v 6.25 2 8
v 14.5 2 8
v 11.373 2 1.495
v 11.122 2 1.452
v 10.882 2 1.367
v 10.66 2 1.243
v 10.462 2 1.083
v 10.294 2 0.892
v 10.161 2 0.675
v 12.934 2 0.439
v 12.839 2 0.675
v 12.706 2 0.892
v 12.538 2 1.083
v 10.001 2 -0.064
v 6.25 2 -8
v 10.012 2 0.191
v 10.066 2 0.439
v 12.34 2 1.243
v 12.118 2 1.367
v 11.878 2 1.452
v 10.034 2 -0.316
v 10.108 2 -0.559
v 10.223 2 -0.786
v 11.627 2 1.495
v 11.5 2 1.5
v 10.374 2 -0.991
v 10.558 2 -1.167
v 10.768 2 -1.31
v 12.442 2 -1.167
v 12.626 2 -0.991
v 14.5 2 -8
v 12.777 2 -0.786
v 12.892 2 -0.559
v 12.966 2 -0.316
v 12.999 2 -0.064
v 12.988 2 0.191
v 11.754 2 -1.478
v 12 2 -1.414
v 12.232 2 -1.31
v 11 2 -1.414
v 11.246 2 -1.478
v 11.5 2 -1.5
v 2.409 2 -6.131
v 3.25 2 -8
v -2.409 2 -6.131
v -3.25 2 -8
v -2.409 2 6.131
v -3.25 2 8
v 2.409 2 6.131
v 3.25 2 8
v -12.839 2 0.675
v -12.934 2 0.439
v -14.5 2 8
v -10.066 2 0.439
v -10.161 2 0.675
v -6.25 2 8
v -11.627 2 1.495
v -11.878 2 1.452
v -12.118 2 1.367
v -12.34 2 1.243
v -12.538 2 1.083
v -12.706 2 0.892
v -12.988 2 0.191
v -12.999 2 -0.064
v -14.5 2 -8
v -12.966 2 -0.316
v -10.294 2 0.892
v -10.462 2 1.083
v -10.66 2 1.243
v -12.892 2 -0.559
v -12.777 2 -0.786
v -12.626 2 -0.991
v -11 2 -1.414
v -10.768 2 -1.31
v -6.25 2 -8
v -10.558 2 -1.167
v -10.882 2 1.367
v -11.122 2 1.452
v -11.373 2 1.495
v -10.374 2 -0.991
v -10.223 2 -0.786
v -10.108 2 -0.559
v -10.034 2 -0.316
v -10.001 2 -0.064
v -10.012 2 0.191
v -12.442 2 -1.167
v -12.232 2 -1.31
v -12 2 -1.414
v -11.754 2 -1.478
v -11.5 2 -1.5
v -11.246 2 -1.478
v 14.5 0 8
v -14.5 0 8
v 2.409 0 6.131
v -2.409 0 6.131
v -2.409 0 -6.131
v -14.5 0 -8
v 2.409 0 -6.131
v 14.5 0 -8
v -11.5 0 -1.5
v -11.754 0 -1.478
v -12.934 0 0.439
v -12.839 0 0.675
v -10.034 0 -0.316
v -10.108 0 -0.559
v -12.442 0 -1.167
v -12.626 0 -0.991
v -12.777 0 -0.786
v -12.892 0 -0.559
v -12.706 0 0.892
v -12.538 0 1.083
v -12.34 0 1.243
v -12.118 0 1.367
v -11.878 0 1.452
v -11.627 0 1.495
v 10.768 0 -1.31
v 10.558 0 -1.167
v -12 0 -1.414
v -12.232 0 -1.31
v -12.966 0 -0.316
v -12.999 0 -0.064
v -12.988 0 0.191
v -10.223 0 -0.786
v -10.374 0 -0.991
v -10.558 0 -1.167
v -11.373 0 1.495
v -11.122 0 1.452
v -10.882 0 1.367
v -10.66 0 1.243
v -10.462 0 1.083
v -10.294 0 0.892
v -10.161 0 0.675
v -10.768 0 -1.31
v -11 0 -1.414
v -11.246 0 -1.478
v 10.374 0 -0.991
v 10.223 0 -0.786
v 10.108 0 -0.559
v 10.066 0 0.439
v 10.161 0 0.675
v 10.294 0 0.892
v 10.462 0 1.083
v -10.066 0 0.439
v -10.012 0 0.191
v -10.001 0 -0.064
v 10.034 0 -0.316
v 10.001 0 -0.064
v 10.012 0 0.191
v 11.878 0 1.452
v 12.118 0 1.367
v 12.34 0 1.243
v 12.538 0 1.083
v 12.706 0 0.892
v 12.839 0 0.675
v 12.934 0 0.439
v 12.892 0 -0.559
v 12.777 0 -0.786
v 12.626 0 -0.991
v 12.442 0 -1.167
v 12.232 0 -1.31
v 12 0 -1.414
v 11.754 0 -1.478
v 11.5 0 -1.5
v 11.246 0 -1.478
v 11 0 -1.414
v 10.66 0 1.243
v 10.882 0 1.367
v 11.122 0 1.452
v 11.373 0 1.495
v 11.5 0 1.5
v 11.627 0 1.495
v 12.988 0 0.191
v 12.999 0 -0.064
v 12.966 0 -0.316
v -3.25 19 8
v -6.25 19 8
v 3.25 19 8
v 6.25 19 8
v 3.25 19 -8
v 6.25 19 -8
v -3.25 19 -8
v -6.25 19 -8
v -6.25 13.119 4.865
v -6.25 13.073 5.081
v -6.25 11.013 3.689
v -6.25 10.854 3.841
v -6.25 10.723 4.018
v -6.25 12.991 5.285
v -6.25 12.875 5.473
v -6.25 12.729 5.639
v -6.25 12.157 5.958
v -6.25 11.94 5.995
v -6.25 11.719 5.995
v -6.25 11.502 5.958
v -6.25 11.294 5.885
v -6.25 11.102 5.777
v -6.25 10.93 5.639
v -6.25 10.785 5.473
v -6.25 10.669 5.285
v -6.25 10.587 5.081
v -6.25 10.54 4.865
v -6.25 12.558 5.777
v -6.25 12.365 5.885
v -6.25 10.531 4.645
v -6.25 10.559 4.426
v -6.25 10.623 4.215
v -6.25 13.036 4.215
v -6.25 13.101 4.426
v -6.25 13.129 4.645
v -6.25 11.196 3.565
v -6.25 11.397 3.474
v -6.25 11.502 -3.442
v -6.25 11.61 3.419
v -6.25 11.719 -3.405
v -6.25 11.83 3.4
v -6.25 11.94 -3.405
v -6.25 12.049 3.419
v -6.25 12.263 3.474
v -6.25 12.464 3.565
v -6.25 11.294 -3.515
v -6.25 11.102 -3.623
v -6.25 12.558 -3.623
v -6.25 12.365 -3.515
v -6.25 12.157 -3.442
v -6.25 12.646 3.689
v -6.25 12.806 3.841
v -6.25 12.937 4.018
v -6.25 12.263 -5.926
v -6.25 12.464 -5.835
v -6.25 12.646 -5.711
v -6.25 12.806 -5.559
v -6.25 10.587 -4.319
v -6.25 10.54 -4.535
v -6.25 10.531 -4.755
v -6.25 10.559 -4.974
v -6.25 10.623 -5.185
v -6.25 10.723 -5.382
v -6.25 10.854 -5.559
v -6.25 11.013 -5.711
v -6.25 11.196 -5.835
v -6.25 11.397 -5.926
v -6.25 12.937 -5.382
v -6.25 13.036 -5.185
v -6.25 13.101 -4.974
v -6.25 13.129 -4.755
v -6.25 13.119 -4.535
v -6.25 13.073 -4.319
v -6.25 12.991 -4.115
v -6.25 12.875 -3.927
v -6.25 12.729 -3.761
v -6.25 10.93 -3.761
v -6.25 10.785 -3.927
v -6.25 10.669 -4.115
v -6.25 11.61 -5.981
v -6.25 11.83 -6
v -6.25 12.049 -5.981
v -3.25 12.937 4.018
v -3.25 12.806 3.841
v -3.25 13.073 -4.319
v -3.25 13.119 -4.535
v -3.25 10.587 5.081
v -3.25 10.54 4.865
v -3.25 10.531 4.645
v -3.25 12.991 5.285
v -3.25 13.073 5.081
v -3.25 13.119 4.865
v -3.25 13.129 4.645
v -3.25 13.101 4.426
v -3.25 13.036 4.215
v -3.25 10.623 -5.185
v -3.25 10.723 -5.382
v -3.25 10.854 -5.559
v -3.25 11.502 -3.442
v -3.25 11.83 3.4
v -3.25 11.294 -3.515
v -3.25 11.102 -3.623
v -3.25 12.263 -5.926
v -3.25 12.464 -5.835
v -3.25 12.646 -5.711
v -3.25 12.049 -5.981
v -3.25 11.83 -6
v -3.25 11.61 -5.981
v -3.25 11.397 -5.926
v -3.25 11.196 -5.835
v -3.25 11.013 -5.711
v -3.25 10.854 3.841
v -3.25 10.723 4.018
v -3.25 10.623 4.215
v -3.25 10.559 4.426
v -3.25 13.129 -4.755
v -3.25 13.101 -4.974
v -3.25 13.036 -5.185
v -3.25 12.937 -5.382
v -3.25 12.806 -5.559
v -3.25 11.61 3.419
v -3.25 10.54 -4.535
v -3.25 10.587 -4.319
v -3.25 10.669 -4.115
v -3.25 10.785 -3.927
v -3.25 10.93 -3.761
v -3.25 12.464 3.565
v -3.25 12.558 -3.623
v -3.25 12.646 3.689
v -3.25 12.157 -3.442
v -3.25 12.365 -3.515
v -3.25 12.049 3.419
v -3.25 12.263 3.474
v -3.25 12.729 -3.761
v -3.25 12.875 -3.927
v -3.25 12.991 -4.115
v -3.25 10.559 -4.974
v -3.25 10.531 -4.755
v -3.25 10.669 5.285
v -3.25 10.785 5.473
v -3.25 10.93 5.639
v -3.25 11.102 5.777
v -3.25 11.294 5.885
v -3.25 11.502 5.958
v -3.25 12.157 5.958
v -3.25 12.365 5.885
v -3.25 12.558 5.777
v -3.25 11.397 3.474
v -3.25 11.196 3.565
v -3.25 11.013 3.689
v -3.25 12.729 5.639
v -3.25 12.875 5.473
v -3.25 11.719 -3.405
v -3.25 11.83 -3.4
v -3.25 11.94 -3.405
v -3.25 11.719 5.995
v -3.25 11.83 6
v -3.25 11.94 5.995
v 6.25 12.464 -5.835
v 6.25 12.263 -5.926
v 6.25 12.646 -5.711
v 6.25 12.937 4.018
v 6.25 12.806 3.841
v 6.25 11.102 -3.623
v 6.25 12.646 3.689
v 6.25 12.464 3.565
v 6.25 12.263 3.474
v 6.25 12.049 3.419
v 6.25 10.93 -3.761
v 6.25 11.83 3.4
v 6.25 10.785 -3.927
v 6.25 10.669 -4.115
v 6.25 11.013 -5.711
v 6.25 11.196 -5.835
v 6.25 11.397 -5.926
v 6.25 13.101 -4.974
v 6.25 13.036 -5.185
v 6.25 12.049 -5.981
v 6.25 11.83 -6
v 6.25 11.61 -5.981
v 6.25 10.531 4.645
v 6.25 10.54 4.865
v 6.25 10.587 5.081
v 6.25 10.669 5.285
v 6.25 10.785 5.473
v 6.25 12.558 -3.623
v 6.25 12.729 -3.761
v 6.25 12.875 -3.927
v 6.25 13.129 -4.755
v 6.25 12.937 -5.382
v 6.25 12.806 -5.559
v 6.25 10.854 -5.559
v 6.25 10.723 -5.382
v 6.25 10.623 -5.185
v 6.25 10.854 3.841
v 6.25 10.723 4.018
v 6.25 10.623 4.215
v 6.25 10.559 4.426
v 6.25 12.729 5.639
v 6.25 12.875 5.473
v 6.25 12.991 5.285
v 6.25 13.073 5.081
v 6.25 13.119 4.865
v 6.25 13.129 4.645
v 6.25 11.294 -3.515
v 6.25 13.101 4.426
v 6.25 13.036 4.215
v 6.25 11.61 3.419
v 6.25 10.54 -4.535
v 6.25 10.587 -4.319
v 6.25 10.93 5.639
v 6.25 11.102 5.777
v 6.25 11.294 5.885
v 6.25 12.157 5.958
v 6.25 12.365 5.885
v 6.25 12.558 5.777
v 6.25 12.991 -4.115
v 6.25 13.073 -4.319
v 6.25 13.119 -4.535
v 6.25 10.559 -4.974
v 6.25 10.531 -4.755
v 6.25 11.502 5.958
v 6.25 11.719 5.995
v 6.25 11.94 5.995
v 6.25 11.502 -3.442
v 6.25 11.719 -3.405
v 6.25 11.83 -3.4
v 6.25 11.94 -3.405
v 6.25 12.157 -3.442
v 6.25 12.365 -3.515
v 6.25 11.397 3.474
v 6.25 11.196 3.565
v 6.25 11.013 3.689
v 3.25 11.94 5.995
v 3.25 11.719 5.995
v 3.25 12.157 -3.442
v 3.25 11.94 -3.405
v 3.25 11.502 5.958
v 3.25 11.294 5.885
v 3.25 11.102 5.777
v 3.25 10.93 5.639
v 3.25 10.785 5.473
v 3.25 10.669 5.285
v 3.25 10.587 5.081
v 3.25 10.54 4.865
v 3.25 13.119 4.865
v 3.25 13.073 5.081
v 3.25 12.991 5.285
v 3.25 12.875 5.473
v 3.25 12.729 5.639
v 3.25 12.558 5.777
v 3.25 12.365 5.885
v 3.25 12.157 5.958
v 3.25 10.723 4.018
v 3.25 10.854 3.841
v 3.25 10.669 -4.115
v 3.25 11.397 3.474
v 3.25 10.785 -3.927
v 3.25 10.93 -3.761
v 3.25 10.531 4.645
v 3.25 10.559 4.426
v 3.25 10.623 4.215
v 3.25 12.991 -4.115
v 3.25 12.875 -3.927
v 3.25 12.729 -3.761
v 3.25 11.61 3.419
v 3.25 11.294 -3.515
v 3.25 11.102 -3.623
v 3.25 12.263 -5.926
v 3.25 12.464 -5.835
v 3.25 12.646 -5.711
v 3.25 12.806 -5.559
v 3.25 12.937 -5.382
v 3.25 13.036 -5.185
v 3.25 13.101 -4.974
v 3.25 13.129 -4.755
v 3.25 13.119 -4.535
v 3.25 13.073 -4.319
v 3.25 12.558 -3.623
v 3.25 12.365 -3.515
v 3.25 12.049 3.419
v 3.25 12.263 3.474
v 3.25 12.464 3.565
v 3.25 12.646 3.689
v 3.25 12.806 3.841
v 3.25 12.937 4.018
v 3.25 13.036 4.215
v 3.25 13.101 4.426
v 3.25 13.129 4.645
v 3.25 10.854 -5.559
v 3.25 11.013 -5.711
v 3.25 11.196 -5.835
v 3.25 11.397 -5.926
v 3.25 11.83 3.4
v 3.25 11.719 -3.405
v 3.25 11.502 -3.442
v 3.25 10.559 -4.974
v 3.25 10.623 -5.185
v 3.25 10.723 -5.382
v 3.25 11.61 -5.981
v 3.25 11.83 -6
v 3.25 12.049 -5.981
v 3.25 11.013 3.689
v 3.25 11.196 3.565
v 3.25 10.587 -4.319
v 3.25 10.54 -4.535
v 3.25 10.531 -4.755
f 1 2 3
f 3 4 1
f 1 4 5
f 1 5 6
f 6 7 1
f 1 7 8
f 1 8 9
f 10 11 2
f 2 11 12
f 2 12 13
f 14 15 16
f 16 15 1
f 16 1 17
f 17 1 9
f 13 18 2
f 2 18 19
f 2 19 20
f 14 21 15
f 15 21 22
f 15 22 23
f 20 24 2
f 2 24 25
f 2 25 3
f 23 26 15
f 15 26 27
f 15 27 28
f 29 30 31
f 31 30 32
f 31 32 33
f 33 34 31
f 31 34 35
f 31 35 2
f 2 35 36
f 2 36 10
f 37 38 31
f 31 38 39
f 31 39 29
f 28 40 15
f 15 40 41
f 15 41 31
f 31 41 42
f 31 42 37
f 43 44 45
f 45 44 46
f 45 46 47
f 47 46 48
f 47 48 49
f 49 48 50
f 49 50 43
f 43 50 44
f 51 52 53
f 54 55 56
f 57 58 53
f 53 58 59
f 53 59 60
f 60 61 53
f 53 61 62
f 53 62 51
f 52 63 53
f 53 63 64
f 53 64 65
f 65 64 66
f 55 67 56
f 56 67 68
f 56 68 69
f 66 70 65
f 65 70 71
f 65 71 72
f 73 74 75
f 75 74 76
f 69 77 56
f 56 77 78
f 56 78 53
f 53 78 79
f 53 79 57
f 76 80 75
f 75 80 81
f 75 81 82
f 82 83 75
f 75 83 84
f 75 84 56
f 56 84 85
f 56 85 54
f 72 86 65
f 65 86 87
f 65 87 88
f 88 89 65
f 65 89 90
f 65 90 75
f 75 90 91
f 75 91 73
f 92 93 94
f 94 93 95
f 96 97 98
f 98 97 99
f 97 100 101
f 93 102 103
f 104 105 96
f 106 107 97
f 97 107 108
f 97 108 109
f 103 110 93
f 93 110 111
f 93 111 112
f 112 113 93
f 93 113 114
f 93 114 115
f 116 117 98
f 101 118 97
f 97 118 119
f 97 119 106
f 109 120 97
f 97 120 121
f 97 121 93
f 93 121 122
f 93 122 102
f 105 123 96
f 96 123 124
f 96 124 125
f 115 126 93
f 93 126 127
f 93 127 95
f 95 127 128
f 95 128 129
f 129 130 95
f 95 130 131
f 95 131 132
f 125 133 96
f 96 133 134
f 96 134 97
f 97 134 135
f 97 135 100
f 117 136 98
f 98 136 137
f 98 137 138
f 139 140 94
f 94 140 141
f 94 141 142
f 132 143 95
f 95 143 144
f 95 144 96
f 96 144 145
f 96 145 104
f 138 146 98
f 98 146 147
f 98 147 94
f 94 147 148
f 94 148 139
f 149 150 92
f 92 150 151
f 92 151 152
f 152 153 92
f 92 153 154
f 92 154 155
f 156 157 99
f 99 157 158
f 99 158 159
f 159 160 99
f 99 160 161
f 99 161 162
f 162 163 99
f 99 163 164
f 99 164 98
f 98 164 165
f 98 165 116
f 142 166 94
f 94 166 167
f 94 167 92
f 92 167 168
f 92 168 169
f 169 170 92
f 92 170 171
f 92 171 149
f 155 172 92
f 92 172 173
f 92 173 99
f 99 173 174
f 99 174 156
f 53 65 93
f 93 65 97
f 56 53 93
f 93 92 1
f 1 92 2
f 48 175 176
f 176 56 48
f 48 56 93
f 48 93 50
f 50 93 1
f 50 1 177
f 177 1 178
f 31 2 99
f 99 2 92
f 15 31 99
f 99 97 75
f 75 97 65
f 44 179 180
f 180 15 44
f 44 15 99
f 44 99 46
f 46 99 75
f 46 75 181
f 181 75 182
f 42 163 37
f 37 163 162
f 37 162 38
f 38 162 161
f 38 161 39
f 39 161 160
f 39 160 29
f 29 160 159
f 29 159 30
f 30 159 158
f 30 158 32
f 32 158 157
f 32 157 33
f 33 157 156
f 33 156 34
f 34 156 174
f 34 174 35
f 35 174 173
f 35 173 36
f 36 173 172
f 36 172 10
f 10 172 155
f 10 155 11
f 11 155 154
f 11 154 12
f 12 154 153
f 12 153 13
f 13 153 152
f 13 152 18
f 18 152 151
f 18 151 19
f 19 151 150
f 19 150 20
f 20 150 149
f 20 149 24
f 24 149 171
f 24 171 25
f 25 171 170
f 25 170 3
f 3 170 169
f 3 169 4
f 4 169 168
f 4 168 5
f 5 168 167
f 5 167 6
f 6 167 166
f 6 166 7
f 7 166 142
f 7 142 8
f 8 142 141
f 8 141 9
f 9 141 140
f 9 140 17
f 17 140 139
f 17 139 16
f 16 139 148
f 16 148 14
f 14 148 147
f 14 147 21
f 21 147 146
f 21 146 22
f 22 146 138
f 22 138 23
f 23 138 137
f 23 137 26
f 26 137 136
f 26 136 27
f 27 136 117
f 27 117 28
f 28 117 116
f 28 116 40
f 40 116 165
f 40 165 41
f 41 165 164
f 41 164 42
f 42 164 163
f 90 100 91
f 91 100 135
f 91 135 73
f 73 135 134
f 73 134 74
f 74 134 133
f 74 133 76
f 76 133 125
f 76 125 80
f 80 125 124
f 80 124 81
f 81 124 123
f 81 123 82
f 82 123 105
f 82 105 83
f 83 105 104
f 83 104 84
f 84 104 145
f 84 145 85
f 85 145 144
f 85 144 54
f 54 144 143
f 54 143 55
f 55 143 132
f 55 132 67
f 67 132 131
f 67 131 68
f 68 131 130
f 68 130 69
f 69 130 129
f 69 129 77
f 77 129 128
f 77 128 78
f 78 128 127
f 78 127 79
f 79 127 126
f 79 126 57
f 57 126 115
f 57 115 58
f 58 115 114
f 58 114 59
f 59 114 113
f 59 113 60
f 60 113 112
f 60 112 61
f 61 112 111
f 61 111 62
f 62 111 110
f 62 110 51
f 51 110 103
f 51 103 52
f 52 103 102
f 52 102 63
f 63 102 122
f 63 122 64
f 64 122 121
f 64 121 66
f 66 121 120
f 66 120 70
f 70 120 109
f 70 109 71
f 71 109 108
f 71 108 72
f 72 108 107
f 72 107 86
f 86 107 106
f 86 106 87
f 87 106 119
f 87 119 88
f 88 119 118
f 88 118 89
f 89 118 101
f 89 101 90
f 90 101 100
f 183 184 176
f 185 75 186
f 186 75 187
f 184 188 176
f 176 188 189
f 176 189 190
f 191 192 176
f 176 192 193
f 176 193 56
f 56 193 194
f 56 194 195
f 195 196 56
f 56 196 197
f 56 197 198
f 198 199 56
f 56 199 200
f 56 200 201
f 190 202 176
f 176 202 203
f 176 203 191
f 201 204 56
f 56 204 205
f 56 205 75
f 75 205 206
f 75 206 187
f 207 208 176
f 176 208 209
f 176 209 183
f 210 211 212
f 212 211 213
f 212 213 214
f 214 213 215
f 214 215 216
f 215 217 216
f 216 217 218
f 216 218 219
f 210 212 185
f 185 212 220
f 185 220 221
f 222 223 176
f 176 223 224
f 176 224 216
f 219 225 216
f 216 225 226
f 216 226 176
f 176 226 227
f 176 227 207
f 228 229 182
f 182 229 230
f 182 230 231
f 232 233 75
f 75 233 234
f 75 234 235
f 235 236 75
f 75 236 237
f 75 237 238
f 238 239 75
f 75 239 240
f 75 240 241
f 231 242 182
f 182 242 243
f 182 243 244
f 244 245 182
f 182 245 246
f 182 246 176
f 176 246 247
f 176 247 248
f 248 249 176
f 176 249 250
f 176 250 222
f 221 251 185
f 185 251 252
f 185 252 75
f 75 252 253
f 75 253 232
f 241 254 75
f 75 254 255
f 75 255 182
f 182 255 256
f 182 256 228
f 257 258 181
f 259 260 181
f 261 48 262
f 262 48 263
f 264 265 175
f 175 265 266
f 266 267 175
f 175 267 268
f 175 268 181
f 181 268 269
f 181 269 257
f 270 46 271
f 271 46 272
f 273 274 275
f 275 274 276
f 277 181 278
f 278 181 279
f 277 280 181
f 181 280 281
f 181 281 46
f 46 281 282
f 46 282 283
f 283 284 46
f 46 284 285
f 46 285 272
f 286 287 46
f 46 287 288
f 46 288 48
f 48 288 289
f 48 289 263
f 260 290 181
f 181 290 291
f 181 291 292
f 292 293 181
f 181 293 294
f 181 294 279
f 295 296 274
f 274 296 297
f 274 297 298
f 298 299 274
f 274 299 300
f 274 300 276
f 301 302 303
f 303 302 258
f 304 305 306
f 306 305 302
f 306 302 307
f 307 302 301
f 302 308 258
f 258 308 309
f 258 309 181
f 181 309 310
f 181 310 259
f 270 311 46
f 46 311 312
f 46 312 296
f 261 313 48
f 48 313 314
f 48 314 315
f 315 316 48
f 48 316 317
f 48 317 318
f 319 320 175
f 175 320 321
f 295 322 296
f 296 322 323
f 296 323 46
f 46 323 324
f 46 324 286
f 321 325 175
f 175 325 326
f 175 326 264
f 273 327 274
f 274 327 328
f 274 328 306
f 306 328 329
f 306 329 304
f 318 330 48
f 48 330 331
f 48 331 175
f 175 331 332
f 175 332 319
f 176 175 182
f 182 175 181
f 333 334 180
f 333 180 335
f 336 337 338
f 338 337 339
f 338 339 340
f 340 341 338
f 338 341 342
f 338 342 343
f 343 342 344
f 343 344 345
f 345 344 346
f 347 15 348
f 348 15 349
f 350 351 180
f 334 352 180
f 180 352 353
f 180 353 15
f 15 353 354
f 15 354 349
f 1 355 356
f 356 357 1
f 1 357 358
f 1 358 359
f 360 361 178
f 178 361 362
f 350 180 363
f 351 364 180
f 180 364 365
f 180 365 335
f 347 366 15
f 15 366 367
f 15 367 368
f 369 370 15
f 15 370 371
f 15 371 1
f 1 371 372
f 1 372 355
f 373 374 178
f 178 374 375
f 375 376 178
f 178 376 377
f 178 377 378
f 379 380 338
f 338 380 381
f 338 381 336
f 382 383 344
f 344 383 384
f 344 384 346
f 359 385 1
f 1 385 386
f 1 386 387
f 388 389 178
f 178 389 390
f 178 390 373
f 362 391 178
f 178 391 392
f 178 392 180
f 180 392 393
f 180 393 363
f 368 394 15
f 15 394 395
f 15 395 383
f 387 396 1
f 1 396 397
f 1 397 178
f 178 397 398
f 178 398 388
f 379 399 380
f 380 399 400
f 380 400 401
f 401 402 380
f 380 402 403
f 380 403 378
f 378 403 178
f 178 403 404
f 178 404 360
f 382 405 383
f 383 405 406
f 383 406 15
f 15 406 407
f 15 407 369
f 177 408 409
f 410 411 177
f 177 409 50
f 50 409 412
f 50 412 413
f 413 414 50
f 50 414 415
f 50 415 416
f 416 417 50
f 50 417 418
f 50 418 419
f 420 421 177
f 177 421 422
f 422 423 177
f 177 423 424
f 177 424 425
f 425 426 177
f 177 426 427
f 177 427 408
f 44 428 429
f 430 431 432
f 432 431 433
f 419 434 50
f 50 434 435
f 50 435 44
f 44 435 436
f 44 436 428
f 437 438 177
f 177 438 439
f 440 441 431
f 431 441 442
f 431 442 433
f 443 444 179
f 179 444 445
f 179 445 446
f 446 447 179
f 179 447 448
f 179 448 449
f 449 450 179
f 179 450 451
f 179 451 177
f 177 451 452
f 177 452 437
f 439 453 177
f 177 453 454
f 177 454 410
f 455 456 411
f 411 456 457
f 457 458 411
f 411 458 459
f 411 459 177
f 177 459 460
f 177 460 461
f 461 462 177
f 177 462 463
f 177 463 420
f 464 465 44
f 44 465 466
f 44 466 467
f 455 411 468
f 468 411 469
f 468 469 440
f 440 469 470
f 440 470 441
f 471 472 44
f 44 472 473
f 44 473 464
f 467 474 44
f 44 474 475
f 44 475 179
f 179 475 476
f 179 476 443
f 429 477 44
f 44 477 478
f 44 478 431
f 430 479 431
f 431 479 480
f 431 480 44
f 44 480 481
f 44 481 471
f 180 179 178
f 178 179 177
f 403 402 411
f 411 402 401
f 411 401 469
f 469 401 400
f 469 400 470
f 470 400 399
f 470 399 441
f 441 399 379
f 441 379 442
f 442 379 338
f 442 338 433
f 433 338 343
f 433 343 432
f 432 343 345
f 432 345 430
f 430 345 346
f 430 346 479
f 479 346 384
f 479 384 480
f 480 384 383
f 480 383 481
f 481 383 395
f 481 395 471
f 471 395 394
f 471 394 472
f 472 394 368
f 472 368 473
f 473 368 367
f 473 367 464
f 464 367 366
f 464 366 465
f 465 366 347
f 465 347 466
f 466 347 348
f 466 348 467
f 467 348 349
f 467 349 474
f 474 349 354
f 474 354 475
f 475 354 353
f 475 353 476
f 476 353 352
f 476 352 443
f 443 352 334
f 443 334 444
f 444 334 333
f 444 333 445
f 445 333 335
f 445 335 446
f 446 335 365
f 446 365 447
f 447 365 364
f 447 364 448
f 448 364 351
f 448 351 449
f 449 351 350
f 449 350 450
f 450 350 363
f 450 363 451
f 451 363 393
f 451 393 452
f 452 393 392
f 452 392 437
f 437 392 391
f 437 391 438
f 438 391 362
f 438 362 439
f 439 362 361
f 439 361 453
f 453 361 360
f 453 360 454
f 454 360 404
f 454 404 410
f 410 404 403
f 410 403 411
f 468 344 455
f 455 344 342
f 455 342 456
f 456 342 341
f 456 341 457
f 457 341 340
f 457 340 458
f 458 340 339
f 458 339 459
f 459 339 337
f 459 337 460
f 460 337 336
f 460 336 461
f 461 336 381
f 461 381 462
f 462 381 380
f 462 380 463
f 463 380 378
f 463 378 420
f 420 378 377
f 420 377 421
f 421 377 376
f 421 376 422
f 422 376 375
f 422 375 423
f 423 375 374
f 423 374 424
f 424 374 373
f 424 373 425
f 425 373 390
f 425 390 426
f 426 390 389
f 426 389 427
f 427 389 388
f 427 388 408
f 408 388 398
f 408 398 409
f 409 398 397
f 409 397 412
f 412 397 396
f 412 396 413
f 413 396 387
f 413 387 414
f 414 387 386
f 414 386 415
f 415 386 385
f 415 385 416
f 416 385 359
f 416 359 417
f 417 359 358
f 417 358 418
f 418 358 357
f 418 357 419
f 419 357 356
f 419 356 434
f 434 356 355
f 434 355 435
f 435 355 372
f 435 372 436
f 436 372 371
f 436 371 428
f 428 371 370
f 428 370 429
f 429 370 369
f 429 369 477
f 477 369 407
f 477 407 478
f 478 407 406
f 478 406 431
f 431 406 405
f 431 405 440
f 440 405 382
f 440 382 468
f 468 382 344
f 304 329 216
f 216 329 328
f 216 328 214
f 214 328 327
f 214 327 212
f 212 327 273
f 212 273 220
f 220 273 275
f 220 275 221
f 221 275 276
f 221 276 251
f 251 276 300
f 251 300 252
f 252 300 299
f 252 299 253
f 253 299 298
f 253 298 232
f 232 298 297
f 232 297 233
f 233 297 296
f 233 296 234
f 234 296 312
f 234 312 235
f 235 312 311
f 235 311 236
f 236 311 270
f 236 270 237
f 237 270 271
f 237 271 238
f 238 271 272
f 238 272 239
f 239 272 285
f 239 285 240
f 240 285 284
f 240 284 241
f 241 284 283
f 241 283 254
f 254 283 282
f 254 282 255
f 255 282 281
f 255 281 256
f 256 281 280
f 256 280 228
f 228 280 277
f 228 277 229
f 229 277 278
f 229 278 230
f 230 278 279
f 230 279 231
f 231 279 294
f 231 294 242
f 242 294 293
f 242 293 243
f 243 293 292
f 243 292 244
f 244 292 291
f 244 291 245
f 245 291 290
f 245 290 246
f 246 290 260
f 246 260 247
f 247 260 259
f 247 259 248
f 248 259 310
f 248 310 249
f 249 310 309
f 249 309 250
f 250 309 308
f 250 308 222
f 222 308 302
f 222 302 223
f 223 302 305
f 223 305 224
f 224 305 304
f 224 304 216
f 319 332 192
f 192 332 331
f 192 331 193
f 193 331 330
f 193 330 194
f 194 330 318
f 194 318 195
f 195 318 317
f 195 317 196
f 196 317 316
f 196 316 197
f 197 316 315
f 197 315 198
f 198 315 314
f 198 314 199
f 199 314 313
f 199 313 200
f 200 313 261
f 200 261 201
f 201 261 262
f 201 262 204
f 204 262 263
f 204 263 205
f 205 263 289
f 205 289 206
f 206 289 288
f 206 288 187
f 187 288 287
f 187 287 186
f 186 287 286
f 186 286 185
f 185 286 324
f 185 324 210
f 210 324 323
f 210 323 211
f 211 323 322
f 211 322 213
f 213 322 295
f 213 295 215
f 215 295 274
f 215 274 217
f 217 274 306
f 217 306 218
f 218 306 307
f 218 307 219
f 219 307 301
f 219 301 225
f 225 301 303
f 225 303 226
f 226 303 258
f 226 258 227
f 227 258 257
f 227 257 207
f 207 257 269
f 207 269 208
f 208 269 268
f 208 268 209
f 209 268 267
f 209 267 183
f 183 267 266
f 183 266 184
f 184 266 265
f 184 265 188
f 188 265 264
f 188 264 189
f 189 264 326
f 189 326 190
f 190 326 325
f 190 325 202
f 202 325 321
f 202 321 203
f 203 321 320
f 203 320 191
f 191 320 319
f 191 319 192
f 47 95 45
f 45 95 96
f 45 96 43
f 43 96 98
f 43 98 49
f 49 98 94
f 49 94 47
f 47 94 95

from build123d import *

# Parameters (mm, degrees)
CROQUIS1_W              = 29
CROQUIS1_H              = 16
CROQUIS1_R              = 1.5
SALIENTE_EXTRUIR1_DEPTH = 2
CROQUIS2_W              = 3
CROQUIS2_H              = 16
SALIENTE_EXTRUIR2_DEPTH = 17
CROQUIS3_R              = 1.3
CORTAR_EXTRUIR1_DEPTH   = 17
CROQUIS4_W              = 4.8184681
CROQUIS4_H              = 12.262383564
CORTAR_EXTRUIR2_DEPTH   = 10


with BuildPart() as part:
    # Croquis1 → Saliente-Extruir1 (new body)
    with BuildSketch(Plane(origin=(0, 0, 0), x_dir=(1, 0, 0), z_dir=(0, 1, 0))):
        Rectangle(CROQUIS1_W, CROQUIS1_H)
        with Locations(Location((11.5, 0, 0), (0, 0, 270))):
            Circle(CROQUIS1_R, mode=Mode.SUBTRACT)
        with Locations(Location((-11.5, 0, 0), (0, 0, 90))):
            Circle(CROQUIS1_R, mode=Mode.SUBTRACT)
    extrude(amount=SALIENTE_EXTRUIR1_DEPTH)

    # Croquis2 → Saliente-Extruir2 (add)
    with BuildSketch(Plane(origin=(0, 2, 0), x_dir=(1, 0, 0), z_dir=(0, 1, 0))):
        with Locations((4.75, 0)):
            Rectangle(CROQUIS2_W, CROQUIS2_H)
        with Locations((-4.75, 0)):
            Rectangle(CROQUIS2_W, CROQUIS2_H)
    extrude(amount=SALIENTE_EXTRUIR2_DEPTH)

    # Croquis3 → Cortar-Extruir1 (cut)
    with BuildSketch(Plane(origin=(6.25, 0, 0), x_dir=(0, 0, -1), z_dir=(1, 0, 0))):
        with Locations((-4.7, 11.829714682)):
            Circle(CROQUIS3_R)
        with Locations((4.7, 11.829714682)):
            Circle(CROQUIS3_R)
    extrude(amount=-CORTAR_EXTRUIR1_DEPTH, mode=Mode.SUBTRACT)

    # Croquis4 → Cortar-Extruir2 (cut)
    with BuildSketch(Plane(origin=(0, 2, 0), x_dir=(1, 0, 0), z_dir=(0, 1, 0))):
        Rectangle(CROQUIS4_W, CROQUIS4_H)
    extrude(amount=-CORTAR_EXTRUIR2_DEPTH, mode=Mode.SUBTRACT)


solid = part.part
